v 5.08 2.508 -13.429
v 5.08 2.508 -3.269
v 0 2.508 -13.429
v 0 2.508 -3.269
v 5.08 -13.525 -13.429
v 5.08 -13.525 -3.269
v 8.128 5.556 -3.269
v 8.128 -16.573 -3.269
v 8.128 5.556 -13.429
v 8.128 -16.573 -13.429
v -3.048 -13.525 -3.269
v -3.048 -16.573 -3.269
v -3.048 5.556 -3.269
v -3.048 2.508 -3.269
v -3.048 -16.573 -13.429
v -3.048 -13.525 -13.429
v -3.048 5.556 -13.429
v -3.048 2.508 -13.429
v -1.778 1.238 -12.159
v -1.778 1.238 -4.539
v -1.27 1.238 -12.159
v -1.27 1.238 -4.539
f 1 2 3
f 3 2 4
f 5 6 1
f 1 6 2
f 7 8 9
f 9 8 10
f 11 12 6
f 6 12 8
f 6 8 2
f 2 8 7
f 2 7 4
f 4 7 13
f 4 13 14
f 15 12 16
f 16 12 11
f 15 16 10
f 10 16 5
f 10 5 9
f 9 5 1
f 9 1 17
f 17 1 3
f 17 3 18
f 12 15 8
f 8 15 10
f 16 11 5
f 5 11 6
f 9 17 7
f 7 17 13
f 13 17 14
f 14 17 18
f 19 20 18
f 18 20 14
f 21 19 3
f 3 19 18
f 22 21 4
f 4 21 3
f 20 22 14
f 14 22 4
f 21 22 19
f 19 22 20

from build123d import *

# Parameters (mm, degrees)
SKETCH1_W           = 11.176
SKETCH1_H           = 10.16
BOSS_EXTRUDE1_DEPTH = 3.048
SKETCH2_W           = 3.048
SKETCH2_H           = 10.16
BOSS_EXTRUDE2_DEPTH = 19.0815
SKETCH3_W           = 10.16
SKETCH3_H           = 3.048
BOSS_EXTRUDE3_DEPTH = 8.128
SKETCH4_W           = 3.048
SKETCH4_H           = 10.16
BOSS_EXTRUDE4_DEPTH = 1.27
BOSS_EXTRUDE4_TAPER = 45


with BuildPart() as part:
    # Sketch1 → Boss-Extrude1 (new body)
    with BuildSketch(Plane.XZ.offset(13.5255)):
        with Locations((2.54, -8.349079223)):
            Rectangle(SKETCH1_W, SKETCH1_H)
    extrude(amount=BOSS_EXTRUDE1_DEPTH)

    # Sketch2 → Boss-Extrude2 (add)
    with BuildSketch(Plane(origin=(0, -13.5255, 0), x_dir=(1, 0, 0), z_dir=(0, 1, 0))):
        with Locations((6.604, 8.349079223)):
            Rectangle(SKETCH2_W, SKETCH2_H)
    extrude(amount=BOSS_EXTRUDE2_DEPTH)

    # Sketch3 → Boss-Extrude3 (add)
    with BuildSketch(Plane.ZY.offset(-5.08)):
        with Locations((-8.349079223, 4.032)):
            Rectangle(SKETCH3_W, SKETCH3_H)
    extrude(amount=BOSS_EXTRUDE3_DEPTH)

    # Sketch4 → Boss-Extrude4 (add)
    with BuildSketch(Plane.XZ.offset(-2.508)):
        with Locations((-1.524, -8.349079223)):
            Rectangle(SKETCH4_W, SKETCH4_H)
    extrude(amount=BOSS_EXTRUDE4_DEPTH, taper=BOSS_EXTRUDE4_TAPER)


solid = part.part
